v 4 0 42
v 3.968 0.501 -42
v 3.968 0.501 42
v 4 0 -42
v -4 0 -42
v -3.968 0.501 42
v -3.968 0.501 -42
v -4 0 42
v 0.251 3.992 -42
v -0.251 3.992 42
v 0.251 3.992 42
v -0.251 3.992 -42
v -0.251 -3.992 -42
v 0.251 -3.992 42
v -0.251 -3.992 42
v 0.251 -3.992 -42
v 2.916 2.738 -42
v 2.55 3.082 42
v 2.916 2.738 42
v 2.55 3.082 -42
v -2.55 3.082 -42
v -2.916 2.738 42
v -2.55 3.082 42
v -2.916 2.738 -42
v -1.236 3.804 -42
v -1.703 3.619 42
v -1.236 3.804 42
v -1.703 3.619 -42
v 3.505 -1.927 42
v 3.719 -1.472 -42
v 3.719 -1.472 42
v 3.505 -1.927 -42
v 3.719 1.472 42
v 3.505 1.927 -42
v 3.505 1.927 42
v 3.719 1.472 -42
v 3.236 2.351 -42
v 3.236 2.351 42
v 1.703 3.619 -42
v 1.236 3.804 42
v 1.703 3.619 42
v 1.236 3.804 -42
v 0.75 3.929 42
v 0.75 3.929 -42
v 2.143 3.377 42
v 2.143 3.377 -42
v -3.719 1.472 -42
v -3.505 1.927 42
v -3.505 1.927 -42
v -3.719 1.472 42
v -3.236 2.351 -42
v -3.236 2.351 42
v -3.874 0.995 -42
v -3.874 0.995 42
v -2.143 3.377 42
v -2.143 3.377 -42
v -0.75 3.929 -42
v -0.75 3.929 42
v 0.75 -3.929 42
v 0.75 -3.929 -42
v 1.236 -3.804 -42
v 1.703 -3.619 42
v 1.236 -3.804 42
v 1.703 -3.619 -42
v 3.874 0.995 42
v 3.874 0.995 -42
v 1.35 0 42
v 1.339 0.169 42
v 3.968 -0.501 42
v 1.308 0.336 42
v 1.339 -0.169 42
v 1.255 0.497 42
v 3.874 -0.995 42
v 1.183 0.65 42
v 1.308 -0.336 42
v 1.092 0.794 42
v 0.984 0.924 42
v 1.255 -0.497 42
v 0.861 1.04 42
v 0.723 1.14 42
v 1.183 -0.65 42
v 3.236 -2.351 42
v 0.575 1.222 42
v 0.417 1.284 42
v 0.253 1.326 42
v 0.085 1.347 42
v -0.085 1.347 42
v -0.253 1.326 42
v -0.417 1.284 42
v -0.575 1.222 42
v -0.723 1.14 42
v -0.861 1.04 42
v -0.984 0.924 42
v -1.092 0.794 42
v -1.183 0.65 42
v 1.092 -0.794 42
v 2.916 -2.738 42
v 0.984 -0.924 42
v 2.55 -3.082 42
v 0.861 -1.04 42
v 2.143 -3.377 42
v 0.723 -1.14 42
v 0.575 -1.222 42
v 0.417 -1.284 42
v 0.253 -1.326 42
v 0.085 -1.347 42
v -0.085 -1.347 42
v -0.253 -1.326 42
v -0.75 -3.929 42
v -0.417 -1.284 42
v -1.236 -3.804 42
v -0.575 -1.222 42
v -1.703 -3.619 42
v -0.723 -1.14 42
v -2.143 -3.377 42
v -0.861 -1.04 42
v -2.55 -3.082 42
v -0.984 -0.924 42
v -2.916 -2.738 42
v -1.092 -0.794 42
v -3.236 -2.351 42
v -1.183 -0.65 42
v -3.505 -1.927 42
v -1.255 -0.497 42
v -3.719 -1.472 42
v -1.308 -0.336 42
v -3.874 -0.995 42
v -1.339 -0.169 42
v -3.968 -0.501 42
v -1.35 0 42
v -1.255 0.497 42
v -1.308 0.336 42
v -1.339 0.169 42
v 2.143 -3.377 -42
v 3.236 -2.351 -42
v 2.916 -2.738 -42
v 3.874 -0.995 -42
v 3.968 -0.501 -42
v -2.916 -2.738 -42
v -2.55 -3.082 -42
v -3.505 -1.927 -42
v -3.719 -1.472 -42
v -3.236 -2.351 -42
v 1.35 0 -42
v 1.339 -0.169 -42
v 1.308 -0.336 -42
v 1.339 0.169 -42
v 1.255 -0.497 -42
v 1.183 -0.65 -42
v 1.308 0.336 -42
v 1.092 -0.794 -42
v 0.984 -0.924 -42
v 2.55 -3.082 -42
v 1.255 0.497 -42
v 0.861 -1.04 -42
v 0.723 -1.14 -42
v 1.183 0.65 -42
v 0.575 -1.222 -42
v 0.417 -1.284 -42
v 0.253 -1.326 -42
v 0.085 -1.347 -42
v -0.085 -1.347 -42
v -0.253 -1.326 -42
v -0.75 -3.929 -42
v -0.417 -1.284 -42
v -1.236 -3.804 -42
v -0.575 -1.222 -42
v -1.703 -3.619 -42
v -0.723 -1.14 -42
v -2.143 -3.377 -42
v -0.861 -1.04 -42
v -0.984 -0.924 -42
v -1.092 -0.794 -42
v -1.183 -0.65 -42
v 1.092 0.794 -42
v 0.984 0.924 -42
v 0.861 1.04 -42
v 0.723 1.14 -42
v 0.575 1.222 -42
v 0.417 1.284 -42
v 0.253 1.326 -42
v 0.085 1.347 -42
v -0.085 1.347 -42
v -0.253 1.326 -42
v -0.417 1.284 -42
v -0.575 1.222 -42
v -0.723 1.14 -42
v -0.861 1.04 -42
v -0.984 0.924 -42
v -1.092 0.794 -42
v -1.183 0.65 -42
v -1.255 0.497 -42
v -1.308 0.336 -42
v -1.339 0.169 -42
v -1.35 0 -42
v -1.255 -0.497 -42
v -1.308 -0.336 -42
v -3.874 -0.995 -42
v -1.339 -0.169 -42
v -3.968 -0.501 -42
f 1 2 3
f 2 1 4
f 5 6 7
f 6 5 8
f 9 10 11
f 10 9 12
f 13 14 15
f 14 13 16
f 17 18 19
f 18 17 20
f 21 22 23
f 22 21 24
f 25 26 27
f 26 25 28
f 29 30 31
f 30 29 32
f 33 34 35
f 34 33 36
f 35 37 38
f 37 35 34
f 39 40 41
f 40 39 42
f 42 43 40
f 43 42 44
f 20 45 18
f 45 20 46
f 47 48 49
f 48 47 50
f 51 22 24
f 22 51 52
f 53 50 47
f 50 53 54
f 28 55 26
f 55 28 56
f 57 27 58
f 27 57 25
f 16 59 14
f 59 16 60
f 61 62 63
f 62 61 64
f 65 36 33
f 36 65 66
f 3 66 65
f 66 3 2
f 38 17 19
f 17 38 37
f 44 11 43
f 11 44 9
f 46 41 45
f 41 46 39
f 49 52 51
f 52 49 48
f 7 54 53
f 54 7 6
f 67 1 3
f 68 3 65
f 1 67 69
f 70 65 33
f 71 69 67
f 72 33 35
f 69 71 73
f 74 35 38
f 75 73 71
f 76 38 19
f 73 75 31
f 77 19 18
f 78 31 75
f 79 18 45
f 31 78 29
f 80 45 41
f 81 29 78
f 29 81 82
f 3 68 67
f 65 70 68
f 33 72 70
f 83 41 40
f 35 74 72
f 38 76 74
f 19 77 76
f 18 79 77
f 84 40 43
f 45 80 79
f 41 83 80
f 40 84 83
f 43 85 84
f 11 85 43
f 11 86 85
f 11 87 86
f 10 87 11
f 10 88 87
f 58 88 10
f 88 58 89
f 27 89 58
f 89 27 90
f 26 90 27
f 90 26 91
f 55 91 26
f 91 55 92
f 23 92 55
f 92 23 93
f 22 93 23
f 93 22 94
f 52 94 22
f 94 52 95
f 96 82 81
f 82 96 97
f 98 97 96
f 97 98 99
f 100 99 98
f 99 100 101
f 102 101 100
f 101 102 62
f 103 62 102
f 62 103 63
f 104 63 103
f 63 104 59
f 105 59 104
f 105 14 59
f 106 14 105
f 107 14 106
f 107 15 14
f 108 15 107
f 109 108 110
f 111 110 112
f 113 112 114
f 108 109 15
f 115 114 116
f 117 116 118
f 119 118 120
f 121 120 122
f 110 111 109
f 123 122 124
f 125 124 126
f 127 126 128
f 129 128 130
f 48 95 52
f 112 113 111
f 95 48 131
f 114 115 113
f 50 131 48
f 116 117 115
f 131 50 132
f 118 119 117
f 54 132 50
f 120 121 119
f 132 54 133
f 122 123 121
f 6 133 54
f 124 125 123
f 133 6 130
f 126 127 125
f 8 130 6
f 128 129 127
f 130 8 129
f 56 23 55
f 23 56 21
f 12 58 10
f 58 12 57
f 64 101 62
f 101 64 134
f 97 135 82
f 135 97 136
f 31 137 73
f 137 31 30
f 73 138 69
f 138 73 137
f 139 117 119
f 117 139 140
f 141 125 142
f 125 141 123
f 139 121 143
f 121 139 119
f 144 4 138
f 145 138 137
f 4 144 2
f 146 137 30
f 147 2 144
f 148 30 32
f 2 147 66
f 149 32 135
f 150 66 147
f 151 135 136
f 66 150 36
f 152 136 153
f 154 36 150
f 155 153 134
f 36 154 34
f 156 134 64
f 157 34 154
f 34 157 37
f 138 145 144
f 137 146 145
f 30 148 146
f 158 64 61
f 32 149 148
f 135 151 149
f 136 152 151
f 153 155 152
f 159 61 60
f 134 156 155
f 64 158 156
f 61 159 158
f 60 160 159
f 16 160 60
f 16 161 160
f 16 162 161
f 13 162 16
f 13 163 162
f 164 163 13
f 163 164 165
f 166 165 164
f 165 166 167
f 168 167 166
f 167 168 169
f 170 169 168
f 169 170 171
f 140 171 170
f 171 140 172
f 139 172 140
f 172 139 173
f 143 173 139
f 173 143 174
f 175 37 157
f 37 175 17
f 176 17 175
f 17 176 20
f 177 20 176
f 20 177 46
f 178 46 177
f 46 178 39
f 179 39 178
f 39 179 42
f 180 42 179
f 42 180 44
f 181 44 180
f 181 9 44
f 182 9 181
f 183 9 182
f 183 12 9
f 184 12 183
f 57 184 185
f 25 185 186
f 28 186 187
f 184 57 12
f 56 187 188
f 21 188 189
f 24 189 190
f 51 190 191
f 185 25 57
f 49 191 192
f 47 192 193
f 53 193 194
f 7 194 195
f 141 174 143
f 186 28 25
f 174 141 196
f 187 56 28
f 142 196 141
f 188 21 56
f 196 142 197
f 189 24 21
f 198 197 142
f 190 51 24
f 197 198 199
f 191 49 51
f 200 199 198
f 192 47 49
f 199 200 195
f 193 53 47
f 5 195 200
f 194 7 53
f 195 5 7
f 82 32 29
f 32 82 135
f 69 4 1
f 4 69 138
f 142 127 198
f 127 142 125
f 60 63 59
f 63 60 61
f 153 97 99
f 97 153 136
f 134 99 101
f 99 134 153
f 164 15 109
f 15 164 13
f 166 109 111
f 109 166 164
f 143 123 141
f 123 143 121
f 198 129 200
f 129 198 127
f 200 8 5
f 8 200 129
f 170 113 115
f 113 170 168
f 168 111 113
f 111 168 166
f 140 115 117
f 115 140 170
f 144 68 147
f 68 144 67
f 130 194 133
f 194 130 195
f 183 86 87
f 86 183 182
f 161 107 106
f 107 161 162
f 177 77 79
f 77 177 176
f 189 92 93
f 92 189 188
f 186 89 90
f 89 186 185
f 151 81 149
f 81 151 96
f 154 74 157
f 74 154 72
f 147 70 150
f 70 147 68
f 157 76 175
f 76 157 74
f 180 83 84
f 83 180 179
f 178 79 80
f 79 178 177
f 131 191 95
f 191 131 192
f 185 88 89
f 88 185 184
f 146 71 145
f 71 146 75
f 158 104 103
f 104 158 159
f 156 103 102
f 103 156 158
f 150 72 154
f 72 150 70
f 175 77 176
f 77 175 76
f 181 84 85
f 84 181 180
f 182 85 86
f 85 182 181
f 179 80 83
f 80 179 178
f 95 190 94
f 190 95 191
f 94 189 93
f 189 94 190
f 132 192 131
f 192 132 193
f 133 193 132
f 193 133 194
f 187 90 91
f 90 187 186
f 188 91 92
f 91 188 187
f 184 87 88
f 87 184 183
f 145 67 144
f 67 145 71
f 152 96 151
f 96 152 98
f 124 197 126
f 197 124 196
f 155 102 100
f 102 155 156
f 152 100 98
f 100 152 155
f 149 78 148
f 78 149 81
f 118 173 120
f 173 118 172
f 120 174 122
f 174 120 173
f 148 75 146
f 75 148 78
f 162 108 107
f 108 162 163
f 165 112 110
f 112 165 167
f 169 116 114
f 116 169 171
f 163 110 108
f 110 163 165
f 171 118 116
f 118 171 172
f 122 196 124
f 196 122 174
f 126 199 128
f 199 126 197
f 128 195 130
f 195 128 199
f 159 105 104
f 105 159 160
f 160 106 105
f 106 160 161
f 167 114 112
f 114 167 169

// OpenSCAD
$fn = 50;


difference() {
	union() {
		translate(v = [0, 0, -42.0000000000]) {
			cylinder(h = 84, r = 4.0000000000);
		}
	}
	union() {
		translate(v = [0, 0, -100.0000000000]) {
			cylinder(h = 200, r = 1.3500000000);
		}
	}
}
